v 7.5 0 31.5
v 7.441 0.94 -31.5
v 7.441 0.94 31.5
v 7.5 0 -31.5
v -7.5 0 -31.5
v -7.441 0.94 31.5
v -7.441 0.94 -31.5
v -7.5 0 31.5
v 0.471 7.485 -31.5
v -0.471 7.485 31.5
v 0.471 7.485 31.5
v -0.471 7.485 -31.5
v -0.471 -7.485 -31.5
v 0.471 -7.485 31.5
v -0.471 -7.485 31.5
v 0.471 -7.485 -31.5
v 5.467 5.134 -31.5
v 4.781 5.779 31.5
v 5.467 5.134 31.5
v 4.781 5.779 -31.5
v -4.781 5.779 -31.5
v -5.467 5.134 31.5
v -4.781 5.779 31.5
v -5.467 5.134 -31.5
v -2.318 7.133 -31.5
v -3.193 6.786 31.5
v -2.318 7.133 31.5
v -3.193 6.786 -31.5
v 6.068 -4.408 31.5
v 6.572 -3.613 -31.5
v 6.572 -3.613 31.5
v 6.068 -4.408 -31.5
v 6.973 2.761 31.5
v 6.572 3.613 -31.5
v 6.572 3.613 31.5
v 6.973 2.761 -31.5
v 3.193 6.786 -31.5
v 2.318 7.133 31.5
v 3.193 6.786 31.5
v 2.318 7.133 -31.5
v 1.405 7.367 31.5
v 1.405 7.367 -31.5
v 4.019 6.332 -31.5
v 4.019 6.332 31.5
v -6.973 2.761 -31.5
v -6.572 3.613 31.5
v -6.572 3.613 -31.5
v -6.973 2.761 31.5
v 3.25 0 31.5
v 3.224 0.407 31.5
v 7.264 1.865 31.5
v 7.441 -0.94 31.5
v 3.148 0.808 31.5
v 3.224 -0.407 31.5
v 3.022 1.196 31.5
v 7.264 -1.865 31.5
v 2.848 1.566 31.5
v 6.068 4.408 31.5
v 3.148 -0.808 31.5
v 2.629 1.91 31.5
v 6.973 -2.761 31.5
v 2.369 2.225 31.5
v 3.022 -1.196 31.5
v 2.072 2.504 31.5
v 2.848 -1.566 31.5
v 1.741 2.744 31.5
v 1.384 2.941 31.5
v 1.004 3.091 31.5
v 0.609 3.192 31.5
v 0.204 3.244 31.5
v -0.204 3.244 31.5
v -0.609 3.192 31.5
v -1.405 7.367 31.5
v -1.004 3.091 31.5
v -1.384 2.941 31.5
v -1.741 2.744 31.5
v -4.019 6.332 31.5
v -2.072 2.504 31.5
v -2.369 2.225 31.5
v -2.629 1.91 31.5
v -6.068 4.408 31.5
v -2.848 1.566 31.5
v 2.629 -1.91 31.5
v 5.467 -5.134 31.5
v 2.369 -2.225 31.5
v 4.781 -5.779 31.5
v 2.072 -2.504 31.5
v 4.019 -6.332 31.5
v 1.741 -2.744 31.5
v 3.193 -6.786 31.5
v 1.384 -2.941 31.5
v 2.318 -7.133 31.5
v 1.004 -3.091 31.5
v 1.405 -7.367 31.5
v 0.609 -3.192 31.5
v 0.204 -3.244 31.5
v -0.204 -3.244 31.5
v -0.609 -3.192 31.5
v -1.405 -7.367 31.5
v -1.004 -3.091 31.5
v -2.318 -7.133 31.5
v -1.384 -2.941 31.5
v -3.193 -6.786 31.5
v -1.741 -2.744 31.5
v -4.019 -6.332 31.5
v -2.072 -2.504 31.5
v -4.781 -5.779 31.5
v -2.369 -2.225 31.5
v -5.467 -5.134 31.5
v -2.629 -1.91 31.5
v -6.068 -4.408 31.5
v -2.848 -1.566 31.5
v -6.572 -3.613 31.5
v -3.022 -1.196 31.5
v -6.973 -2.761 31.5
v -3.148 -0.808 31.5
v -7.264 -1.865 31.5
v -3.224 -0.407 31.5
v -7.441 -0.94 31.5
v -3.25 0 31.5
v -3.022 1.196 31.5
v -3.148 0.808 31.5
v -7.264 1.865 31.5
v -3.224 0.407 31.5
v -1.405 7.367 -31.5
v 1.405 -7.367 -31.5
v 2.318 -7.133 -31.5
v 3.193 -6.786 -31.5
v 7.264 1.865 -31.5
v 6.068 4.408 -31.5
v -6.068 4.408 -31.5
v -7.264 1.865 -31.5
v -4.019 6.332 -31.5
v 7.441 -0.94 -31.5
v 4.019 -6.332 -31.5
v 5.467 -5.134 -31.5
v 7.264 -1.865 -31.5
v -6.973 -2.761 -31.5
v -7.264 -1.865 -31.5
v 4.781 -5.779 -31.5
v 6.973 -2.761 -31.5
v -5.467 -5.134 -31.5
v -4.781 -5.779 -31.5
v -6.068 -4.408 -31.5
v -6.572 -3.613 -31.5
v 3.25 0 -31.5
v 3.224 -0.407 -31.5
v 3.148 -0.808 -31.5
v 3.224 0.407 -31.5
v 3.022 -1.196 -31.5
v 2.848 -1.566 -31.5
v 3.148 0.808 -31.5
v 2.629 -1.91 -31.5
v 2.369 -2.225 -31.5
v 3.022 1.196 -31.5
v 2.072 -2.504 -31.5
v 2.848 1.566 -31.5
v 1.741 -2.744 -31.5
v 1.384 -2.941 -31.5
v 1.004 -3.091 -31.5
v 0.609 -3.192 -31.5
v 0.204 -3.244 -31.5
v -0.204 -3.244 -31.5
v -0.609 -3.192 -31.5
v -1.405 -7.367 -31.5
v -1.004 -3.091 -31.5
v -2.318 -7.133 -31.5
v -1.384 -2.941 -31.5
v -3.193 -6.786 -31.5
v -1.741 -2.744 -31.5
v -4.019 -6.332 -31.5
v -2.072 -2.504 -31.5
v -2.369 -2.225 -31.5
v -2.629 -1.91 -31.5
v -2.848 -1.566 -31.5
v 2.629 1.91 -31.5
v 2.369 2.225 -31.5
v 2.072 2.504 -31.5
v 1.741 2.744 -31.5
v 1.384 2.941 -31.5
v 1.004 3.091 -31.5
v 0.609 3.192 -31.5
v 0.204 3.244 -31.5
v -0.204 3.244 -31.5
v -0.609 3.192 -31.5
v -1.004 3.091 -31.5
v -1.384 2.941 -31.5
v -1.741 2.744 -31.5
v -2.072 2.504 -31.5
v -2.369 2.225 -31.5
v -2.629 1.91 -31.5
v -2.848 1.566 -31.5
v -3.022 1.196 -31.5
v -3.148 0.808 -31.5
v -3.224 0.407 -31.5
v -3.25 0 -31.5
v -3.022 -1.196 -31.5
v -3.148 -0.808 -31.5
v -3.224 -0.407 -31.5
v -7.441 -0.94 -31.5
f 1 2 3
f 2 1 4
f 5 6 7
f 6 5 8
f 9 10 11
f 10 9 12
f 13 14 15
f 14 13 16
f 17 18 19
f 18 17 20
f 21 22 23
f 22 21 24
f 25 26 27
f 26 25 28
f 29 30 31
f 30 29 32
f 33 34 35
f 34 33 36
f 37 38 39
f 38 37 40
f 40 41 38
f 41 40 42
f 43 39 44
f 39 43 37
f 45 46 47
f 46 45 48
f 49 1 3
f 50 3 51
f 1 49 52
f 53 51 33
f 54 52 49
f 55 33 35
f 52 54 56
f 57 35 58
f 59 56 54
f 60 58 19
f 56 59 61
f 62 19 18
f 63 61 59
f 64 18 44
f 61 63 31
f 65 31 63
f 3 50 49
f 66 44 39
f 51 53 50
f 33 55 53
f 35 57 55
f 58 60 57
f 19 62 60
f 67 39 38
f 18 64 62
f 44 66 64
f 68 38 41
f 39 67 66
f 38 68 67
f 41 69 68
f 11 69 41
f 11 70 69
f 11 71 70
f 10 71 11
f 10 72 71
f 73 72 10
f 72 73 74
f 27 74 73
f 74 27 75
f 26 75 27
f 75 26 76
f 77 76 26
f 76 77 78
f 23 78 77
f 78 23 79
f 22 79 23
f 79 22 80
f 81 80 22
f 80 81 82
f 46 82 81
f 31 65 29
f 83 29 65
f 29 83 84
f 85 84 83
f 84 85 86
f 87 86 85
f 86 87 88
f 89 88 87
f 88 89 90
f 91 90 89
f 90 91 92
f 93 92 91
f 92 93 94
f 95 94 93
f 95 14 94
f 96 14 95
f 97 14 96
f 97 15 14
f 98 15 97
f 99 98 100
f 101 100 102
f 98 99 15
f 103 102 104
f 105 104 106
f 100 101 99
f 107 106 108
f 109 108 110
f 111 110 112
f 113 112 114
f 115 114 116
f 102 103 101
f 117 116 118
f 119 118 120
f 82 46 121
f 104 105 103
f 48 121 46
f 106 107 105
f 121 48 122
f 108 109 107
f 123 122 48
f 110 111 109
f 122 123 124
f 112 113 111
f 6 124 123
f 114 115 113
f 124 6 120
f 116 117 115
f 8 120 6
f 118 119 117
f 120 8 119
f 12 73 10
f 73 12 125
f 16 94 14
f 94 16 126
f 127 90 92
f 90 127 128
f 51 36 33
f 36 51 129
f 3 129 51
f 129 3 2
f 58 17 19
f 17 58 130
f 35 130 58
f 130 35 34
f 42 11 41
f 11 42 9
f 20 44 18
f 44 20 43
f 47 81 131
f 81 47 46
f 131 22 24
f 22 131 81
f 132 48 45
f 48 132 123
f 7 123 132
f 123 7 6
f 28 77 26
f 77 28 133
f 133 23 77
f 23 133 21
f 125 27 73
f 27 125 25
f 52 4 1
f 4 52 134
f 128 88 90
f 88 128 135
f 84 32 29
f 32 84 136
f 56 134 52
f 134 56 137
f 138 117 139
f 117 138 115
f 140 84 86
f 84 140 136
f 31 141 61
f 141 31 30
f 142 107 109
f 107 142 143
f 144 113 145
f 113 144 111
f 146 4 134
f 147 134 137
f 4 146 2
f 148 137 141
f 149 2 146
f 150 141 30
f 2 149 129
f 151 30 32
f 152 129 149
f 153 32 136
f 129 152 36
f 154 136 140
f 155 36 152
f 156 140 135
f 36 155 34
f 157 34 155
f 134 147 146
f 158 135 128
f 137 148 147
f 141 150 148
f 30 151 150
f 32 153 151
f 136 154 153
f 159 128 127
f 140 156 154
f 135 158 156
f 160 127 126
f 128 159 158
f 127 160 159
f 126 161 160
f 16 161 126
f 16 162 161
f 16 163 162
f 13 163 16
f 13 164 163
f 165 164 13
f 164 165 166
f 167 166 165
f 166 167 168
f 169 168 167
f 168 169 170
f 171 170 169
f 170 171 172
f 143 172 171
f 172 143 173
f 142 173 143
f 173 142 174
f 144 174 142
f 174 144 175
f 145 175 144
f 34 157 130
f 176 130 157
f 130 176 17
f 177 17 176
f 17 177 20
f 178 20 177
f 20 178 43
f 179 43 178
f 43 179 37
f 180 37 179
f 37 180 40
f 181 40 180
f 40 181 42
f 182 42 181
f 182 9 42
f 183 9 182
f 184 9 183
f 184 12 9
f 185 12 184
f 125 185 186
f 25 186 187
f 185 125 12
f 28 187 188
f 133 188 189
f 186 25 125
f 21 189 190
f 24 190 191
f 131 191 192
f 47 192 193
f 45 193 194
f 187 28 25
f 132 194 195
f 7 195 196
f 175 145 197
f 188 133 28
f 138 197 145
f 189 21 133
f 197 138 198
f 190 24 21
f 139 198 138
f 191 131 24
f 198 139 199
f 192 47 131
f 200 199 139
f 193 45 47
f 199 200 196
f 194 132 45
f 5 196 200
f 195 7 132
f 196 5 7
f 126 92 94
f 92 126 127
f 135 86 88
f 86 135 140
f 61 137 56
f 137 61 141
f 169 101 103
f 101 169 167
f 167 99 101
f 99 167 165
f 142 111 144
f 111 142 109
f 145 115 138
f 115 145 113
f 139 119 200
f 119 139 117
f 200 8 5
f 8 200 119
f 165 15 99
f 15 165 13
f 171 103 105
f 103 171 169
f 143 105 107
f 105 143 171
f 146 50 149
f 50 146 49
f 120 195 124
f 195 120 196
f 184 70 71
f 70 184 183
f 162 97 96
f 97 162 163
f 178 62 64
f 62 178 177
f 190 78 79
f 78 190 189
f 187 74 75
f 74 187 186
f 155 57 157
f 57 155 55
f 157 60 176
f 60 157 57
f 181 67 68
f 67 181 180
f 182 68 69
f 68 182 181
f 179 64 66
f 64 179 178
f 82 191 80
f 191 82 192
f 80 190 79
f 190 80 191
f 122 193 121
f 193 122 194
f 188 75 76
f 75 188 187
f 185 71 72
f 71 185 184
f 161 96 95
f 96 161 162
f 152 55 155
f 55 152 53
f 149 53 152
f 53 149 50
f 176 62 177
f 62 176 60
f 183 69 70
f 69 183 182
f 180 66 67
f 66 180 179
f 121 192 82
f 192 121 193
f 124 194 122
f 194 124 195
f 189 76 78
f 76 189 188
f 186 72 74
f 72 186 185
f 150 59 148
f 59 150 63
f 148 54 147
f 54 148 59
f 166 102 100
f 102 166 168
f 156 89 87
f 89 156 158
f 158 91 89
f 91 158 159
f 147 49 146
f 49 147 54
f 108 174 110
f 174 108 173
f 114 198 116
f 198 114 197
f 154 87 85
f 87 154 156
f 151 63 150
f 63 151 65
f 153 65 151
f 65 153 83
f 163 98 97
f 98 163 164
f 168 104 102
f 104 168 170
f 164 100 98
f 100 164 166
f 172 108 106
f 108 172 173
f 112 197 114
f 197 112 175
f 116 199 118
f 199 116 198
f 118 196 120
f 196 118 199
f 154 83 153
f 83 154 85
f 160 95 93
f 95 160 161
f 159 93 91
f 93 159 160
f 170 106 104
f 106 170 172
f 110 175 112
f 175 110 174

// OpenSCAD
$fn = 50;


difference() {
	union() {
		translate(v = [0, 0, -31.5000000000]) {
			cylinder(h = 63, r = 7.5000000000);
		}
	}
	union() {
		translate(v = [0, 0, -100.0000000000]) {
			cylinder(h = 200, r = 3.2500000000);
		}
	}
}
